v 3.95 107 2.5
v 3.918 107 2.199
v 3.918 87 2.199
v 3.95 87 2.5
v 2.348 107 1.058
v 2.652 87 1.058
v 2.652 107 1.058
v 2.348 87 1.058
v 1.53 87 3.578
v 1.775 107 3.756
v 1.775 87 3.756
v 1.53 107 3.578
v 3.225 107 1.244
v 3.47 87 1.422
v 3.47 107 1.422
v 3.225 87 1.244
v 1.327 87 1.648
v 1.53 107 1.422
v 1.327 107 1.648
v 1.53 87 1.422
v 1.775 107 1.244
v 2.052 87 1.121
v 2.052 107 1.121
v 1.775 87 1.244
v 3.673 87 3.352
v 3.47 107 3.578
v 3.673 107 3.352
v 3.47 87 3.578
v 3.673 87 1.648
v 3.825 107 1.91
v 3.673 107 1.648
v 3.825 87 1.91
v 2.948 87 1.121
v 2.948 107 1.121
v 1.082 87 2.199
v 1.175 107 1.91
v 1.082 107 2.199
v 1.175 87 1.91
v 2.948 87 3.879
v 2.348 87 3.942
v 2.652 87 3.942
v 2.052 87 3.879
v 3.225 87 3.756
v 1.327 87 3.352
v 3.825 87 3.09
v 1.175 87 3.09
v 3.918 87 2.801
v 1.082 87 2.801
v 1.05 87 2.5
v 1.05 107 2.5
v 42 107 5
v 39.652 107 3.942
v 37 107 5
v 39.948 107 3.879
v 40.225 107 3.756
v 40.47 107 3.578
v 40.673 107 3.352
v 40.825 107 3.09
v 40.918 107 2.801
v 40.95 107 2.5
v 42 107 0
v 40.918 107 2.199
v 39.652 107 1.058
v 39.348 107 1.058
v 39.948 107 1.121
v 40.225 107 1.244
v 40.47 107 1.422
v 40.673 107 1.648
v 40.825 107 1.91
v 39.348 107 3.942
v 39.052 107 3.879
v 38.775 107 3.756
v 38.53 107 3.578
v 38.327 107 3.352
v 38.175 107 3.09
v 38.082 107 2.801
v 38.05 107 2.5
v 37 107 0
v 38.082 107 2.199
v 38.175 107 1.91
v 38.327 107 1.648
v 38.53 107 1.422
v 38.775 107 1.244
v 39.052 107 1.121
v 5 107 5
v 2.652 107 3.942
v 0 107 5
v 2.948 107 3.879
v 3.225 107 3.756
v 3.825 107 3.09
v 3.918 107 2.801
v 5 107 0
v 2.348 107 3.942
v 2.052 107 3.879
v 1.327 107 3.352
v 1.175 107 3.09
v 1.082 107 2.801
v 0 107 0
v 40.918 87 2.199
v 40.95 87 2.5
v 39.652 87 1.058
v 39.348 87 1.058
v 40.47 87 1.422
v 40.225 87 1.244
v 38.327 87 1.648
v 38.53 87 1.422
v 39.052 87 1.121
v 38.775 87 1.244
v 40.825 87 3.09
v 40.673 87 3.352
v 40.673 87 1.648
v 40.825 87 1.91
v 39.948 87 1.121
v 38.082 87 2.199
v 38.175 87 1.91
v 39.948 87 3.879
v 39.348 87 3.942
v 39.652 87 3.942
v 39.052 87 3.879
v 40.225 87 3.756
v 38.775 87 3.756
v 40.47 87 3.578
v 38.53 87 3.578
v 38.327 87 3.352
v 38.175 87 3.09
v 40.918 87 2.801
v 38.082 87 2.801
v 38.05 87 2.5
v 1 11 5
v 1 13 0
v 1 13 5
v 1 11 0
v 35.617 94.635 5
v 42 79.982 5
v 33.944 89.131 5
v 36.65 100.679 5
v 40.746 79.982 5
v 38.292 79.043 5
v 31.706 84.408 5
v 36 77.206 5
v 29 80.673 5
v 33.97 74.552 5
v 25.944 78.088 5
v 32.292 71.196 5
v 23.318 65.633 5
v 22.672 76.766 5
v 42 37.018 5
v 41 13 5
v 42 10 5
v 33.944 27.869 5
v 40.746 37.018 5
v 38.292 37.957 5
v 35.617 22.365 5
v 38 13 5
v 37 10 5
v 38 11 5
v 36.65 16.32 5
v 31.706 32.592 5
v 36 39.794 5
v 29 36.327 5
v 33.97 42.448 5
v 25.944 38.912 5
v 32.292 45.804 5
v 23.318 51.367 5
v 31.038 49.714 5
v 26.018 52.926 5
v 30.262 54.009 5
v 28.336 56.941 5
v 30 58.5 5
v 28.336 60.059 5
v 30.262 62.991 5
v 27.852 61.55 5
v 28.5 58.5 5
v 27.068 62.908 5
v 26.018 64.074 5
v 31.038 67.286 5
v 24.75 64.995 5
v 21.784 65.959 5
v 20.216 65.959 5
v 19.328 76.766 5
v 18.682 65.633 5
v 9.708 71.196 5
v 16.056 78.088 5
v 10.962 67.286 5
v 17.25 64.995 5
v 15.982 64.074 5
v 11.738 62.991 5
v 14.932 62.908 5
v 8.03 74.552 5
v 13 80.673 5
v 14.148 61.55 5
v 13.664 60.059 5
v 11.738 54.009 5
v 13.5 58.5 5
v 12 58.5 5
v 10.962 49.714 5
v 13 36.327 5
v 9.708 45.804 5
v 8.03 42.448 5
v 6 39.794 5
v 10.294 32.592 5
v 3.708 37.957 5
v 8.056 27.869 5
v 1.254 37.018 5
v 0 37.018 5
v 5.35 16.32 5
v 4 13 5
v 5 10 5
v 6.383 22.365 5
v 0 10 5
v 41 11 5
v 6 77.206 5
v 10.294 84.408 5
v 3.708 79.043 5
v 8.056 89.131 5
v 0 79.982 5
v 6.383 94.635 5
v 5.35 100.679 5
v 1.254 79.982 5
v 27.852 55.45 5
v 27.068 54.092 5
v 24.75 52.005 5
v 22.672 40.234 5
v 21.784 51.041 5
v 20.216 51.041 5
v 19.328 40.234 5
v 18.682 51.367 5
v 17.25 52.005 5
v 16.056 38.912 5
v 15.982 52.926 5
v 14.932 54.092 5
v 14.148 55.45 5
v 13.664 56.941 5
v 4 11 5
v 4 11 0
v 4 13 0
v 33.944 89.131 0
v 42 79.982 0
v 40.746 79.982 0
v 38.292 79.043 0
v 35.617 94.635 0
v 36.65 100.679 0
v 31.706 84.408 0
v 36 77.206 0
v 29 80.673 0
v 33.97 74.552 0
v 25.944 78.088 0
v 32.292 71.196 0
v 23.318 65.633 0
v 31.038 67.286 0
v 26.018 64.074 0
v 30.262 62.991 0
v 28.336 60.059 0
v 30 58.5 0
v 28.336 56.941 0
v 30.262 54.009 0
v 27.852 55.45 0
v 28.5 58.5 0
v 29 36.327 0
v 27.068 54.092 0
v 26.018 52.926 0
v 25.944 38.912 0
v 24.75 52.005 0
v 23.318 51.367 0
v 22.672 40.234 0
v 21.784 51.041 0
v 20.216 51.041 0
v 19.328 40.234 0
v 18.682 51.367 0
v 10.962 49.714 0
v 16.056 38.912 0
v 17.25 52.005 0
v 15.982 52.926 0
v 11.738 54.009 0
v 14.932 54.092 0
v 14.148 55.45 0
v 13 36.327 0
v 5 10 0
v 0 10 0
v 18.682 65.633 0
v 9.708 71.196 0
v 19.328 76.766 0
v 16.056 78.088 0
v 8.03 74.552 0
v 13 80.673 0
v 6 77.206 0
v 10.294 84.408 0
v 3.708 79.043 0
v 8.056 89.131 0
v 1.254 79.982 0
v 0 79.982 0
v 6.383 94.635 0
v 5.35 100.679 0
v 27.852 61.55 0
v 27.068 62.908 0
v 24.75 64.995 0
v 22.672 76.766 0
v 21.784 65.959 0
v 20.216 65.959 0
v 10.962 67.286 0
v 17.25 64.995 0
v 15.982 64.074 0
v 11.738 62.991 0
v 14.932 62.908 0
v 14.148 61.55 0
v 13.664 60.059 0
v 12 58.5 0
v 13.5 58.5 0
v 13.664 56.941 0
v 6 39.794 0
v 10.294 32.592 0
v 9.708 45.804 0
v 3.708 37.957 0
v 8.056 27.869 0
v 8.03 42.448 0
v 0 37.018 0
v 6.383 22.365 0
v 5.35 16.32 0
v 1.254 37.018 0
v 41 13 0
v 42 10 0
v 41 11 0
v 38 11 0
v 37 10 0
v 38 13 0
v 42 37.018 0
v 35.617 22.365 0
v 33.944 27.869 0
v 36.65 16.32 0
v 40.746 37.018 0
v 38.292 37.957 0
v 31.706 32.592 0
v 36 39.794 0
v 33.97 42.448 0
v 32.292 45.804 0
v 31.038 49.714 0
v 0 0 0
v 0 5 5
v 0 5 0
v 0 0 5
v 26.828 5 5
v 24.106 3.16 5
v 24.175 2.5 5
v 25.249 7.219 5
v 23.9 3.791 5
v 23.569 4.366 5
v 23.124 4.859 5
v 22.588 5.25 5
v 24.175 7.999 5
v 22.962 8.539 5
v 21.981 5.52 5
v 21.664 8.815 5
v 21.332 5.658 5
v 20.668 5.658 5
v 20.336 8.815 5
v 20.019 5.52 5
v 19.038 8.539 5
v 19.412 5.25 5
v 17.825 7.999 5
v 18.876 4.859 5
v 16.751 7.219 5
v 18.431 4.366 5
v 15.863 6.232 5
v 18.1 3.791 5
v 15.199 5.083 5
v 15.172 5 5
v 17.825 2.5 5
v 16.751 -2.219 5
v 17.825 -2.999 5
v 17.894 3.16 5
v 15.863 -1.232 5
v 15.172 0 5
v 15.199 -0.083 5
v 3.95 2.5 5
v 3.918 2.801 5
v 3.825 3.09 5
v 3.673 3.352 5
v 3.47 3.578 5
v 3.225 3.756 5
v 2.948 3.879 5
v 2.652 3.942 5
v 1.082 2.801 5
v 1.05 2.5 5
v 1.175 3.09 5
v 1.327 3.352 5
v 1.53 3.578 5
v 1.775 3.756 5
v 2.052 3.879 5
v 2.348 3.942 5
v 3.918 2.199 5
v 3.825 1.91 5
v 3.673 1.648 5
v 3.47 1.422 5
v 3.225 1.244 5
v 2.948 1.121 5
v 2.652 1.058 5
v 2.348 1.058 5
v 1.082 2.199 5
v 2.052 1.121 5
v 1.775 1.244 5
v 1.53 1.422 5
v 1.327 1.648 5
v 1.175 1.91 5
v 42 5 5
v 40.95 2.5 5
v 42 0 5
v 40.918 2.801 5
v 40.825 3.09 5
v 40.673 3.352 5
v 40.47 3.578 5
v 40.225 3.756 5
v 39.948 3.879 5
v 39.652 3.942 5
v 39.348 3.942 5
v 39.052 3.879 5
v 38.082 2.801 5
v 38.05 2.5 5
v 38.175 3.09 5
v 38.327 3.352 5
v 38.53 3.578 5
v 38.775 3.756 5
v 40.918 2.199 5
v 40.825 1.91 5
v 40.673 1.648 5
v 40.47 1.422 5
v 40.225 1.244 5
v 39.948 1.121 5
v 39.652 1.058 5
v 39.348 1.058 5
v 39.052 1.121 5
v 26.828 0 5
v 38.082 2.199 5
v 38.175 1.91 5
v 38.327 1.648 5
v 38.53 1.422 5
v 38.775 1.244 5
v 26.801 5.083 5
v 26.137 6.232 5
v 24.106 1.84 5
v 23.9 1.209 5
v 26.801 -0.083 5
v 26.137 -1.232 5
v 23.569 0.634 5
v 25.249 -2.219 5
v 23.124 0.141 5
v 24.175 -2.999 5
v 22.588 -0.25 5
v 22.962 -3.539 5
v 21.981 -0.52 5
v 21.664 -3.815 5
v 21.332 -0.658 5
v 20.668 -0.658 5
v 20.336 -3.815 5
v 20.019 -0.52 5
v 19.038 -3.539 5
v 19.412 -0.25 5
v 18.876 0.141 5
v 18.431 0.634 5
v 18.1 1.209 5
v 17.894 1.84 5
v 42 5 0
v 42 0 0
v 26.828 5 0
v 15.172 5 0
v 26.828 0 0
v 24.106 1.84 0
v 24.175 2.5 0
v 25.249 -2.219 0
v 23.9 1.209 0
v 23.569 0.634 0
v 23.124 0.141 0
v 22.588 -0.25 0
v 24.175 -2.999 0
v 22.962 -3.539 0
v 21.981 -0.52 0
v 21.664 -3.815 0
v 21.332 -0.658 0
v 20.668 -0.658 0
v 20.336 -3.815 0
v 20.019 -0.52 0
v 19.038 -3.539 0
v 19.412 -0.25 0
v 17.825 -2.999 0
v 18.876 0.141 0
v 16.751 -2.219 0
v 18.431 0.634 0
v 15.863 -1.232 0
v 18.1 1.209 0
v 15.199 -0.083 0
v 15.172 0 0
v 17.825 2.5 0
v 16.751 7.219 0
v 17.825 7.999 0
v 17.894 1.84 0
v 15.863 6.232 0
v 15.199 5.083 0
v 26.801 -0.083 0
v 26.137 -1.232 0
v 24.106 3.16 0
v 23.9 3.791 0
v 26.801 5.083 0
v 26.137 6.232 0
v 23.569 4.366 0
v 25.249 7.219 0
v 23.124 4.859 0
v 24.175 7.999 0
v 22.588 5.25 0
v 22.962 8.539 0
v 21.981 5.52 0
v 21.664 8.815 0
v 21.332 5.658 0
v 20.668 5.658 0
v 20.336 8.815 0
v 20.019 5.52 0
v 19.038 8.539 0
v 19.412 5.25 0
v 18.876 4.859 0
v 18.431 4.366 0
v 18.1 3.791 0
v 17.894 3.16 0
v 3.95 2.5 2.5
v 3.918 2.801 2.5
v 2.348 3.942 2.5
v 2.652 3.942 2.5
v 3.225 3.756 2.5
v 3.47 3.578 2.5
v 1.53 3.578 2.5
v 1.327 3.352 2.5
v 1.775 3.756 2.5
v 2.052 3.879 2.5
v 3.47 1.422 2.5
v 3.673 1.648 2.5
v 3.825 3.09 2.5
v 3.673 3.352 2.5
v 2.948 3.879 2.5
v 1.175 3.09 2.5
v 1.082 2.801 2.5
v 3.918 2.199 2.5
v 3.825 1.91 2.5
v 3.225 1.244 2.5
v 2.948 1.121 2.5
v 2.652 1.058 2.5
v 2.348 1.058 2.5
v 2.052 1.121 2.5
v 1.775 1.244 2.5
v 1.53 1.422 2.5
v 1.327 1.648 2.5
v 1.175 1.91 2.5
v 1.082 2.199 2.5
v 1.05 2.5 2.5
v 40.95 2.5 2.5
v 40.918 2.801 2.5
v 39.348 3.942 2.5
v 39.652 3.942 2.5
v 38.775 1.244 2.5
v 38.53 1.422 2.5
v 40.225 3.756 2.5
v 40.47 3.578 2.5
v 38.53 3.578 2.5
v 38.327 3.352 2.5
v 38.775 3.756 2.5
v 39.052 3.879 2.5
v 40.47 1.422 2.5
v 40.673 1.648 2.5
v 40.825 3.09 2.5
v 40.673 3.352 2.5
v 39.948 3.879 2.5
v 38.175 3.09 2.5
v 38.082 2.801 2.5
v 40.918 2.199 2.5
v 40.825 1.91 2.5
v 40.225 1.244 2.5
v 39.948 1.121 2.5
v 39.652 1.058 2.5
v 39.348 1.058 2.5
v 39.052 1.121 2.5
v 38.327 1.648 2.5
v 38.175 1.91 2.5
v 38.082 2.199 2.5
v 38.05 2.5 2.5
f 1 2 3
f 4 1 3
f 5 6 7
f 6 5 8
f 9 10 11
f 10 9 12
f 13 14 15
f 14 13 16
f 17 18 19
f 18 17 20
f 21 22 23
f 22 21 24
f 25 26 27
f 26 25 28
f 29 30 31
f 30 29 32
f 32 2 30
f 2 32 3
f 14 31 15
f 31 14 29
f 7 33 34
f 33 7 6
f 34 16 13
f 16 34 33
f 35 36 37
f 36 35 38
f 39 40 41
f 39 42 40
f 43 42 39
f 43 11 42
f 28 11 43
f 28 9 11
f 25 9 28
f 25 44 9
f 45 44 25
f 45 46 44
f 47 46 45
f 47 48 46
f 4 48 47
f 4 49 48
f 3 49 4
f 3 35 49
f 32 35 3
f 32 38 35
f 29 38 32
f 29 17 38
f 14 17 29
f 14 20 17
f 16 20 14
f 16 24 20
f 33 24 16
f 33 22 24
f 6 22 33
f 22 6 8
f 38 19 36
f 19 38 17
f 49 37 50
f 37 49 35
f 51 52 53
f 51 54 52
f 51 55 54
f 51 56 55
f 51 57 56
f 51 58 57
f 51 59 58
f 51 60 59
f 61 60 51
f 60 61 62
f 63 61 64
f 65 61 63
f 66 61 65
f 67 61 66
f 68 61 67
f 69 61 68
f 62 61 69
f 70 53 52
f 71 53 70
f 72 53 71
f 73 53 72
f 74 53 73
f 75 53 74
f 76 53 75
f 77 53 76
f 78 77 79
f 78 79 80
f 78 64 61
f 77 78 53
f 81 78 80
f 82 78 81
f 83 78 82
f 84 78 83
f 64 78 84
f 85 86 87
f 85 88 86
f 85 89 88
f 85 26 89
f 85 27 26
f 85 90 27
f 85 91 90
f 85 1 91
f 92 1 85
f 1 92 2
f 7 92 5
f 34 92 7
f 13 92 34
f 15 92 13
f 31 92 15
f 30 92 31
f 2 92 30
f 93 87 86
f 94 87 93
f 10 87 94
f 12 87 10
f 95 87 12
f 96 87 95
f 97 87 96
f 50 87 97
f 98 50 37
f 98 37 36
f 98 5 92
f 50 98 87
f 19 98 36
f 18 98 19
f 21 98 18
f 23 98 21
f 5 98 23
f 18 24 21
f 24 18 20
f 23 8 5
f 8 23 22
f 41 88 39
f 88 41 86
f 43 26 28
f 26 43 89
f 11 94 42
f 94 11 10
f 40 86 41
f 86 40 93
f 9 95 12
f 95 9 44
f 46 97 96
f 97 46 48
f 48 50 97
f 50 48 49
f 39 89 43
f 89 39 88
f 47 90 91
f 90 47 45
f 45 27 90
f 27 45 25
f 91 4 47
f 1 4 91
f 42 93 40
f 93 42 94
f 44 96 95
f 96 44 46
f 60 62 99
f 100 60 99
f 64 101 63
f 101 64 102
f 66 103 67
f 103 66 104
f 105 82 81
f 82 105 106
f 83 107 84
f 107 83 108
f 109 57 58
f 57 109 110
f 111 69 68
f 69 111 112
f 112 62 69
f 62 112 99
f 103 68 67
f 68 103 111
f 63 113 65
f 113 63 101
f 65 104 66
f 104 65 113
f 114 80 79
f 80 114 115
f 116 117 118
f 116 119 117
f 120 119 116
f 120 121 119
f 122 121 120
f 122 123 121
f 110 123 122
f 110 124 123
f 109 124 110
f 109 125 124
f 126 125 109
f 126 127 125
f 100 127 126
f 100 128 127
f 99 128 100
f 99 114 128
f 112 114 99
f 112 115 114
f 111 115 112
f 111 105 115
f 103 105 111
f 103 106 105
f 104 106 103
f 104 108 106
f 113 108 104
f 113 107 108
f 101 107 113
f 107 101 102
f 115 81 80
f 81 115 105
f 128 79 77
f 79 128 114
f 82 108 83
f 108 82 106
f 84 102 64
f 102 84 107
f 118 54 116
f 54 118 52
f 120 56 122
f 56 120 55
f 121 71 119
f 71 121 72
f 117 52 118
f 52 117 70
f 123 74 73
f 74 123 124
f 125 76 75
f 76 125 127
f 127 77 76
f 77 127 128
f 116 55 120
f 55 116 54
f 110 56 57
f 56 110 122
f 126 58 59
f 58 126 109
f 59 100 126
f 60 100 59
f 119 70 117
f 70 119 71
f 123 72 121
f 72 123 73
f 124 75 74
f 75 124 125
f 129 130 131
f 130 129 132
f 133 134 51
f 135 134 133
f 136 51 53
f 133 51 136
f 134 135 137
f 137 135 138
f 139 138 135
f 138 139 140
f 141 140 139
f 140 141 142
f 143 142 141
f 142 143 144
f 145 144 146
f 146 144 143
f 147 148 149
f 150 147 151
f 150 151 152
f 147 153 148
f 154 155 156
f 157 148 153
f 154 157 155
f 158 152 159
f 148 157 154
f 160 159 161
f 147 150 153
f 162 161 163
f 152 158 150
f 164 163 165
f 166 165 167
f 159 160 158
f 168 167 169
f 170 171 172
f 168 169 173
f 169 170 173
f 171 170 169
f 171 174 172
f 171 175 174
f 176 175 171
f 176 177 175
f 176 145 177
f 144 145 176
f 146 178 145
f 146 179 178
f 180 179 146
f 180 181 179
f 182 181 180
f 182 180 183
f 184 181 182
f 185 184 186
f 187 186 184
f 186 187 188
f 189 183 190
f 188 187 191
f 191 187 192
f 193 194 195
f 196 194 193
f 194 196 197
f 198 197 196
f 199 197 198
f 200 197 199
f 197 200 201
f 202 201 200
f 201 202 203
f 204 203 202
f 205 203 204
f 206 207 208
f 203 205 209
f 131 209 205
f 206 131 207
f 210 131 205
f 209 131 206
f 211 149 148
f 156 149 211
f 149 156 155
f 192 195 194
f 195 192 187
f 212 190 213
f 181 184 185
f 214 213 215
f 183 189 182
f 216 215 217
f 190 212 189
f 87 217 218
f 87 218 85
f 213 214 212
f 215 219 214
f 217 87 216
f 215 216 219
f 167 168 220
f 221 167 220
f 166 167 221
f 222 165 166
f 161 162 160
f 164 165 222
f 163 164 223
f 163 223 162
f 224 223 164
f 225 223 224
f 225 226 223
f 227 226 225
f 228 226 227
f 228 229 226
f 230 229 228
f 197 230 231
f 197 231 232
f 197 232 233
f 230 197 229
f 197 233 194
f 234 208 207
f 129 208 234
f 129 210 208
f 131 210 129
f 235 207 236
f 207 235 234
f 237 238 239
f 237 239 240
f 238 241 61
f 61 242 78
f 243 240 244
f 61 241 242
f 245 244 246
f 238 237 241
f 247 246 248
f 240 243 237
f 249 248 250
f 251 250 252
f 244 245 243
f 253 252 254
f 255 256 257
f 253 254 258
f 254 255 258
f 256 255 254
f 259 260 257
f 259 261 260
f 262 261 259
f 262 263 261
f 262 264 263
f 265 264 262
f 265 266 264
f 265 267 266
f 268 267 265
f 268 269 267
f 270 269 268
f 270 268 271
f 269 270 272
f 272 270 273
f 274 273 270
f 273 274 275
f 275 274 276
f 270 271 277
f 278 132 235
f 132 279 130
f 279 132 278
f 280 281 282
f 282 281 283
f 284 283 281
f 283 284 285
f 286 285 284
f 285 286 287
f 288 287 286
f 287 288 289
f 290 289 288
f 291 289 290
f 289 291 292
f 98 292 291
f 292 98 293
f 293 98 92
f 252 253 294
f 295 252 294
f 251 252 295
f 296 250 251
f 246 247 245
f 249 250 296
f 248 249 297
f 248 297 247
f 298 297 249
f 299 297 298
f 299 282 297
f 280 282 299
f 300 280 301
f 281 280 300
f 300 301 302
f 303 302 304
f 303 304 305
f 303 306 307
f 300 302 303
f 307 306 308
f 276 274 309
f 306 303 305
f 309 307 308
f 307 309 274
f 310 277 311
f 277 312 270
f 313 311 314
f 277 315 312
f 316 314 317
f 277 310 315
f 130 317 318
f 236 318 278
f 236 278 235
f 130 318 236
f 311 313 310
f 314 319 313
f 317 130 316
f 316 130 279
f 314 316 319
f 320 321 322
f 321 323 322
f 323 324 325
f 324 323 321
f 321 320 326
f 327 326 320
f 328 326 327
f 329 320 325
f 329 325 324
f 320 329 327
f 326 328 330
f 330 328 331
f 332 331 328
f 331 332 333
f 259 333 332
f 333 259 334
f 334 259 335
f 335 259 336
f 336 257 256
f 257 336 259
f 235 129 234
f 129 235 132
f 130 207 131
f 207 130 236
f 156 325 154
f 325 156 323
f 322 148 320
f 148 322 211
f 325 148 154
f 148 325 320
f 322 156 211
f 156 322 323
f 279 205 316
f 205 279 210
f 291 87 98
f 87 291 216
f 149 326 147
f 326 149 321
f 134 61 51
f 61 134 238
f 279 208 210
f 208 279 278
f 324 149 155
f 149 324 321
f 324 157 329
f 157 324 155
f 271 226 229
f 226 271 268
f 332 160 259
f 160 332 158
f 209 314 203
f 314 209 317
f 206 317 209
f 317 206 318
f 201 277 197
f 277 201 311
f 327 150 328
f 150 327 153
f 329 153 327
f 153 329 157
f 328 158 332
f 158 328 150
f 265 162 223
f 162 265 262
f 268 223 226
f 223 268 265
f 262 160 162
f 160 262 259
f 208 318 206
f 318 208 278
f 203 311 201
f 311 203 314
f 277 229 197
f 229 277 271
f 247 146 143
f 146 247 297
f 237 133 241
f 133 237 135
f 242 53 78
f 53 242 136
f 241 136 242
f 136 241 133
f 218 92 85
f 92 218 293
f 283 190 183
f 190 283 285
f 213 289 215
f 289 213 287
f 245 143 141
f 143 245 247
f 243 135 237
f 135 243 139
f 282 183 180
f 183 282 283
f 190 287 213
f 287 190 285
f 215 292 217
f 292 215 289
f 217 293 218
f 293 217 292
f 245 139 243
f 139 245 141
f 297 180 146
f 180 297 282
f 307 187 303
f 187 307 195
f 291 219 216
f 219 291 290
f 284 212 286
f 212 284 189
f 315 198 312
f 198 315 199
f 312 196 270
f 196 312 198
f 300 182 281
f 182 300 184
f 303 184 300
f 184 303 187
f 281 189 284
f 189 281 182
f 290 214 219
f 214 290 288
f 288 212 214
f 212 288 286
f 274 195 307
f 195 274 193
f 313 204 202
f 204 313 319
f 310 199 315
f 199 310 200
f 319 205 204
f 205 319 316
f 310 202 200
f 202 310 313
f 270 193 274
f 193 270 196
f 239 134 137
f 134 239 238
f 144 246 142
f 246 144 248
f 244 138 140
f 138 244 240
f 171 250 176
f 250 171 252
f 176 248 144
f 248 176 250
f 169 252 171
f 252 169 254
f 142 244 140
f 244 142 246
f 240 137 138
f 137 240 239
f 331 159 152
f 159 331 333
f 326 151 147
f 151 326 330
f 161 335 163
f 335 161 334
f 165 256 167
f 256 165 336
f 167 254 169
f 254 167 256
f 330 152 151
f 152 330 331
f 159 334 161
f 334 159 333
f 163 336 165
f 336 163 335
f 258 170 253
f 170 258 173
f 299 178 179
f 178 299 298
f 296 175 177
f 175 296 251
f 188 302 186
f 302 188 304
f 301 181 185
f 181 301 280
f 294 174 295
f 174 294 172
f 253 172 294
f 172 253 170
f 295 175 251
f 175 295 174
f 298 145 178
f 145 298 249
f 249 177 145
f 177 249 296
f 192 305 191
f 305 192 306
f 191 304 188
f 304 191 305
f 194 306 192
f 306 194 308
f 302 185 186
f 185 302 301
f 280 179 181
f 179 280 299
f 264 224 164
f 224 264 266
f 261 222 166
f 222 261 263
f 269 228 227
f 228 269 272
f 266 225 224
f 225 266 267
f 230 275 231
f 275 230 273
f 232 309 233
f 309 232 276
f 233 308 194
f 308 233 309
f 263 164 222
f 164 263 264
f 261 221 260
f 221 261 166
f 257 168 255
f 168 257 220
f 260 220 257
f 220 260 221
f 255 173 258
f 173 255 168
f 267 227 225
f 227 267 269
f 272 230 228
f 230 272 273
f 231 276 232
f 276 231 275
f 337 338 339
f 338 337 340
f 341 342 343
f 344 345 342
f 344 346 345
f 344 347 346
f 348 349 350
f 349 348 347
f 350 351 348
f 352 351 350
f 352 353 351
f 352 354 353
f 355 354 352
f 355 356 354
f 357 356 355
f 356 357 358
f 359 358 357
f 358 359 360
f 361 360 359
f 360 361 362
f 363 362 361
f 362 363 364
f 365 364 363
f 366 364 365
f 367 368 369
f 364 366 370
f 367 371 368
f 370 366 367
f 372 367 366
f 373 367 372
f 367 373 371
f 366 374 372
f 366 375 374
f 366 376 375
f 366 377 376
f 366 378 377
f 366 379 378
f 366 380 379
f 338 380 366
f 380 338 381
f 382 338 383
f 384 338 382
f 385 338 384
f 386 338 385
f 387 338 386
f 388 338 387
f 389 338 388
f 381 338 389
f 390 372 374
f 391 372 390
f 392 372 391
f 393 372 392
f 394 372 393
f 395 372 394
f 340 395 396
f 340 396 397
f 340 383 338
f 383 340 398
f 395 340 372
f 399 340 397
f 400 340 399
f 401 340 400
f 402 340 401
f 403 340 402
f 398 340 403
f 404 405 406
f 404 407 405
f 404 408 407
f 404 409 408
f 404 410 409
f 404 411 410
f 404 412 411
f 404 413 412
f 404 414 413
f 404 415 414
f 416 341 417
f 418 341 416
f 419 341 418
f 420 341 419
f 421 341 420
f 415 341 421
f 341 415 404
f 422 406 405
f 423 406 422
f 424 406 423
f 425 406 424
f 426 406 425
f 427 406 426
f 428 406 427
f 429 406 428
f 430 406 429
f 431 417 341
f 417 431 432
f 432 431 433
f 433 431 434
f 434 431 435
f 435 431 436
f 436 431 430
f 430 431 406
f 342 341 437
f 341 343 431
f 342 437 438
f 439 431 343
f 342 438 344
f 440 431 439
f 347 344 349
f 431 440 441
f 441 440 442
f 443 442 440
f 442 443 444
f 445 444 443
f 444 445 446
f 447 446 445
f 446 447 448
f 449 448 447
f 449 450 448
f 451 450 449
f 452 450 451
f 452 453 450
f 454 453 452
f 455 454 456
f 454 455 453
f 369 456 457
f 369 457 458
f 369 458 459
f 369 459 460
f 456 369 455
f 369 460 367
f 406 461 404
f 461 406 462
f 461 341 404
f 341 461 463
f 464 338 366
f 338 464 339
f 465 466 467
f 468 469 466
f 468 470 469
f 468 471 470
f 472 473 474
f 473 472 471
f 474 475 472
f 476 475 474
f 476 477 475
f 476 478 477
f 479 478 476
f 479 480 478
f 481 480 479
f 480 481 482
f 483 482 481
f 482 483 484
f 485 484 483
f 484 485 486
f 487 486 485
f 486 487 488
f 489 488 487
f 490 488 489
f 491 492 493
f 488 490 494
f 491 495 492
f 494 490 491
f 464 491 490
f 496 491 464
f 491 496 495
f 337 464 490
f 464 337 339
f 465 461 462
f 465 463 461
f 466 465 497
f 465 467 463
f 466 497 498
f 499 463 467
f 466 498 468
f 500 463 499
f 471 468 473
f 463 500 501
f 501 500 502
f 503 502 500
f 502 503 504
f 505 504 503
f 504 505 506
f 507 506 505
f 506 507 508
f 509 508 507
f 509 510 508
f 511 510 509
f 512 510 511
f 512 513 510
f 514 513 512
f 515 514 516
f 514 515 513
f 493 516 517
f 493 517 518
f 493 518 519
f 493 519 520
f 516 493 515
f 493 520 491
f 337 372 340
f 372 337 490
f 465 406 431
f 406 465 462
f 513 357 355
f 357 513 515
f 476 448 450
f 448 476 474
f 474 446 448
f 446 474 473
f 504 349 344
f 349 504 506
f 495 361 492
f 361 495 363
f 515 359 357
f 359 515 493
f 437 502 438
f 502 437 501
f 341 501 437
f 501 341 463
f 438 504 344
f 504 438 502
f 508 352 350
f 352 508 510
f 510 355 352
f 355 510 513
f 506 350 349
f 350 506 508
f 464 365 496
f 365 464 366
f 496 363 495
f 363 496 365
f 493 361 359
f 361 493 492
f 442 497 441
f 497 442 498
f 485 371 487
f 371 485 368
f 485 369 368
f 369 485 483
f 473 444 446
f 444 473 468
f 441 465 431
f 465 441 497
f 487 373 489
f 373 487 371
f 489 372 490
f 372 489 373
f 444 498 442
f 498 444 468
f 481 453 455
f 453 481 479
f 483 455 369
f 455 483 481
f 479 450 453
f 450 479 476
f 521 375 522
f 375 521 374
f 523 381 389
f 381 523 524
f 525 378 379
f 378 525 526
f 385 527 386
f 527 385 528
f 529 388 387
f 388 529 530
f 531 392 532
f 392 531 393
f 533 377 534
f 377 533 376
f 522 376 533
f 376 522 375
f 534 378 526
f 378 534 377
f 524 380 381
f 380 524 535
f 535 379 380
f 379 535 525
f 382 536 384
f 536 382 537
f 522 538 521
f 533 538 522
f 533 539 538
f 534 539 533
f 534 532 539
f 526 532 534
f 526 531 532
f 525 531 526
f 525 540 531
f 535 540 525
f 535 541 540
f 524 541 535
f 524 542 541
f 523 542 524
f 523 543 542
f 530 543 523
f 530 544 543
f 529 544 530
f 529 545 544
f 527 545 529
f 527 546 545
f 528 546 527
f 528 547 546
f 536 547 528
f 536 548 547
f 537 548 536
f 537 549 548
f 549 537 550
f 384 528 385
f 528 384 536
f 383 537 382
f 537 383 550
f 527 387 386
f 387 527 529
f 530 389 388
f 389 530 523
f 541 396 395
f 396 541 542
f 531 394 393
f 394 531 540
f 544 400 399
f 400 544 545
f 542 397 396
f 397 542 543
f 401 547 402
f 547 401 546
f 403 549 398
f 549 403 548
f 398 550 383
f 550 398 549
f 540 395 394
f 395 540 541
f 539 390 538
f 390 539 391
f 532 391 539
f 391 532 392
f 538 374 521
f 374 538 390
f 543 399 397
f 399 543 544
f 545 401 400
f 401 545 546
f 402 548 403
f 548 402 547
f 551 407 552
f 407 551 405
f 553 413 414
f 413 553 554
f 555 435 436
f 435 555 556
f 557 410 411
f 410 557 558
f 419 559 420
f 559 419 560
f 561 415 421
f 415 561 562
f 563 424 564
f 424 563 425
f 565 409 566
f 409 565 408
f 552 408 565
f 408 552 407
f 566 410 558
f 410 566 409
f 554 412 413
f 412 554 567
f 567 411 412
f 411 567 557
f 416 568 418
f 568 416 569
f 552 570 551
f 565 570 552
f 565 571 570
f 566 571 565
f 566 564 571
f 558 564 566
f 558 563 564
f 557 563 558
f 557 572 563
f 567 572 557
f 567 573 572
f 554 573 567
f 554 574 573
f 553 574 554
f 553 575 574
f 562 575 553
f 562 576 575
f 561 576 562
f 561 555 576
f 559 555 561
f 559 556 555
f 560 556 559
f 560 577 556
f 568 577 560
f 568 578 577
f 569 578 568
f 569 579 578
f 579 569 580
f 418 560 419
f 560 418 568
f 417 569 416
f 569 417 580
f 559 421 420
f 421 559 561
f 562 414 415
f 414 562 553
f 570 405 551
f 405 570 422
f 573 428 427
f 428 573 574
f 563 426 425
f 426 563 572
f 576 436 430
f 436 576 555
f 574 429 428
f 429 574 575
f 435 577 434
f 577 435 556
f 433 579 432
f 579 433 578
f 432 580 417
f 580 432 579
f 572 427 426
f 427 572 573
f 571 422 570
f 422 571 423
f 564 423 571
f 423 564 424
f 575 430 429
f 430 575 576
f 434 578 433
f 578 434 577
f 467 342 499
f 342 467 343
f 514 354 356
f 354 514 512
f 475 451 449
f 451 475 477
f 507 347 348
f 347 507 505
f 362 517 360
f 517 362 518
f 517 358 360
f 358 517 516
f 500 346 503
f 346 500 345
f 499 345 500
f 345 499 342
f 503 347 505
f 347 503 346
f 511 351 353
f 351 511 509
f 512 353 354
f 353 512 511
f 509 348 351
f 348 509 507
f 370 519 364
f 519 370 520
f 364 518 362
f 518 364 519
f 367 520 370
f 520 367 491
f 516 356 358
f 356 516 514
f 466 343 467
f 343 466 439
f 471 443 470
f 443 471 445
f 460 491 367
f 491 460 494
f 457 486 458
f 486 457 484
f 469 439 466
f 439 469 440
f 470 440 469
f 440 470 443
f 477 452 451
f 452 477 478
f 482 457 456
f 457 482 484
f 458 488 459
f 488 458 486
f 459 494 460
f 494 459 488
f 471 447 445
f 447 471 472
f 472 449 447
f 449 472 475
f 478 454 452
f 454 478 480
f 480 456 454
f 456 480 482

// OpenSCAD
// camera tripod mount for Taranis Q X10

$fn=30;

ZZ=5;            // thickness
WW=42;           // main body width
HH=97;           // main body height

PADW=10;         // screw pad width
ANTENNA_DIA=15;  // antenna hole

BOLT_DIA=3;      // bolt dimensions
BOLT_LEN=20;

// hole for one bolt
module bolthole() {
    #cylinder(h=BOLT_LEN,d=BOLT_DIA-.1);
}

// drill all the bolt and zip tie holes
module drillholes() {
    // hmm, screwholes seem less good than zip ties.
    //translate([2.5,0,2.5]) rotate([270,0,0]) bolthole();
    //translate([37+2.5,0,2.5]) rotate([270,0,0]) bolthole();

    // two holes for zip ties
    translate([1,1,0]) cube([3,2,ZZ]);
    translate([37+1,1,0]) cube([3,2,ZZ]);

    // top screwholes
    translate([0,HH-BOLT_LEN,0]) {
        translate([2.5,0,2.5]) rotate([270,0,0]) bolthole();
        translate([37+2.5,0,2.5]) rotate([270,0,0]) bolthole();
    }
}

// top bar
module top() {
    difference() {
        union() {
            cube([WW,ZZ,ZZ]);
        translate([WW/2,PADW/4,0]) cylinder(ZZ,d=25.4/2);            
        }
        translate([2.5,2.5,2.5])  bolthole();
        translate([37+2.5,2.5,2.5]) bolthole();
        translate([WW/2,PADW/4,0]) cylinder(ZZ,d=25.4/4);            

    }
}

// main body
module main() {
    difference() {
        cube([WW,HH,ZZ]);
        // top and bottom
        translate([WW/2,0,0])  scale([1,1.9,1]) cylinder(ZZ,d=WW-(PADW));
        translate([WW/2,HH,0]) scale([1,1.9,1]) cylinder(ZZ,d=WW-(PADW));
        // sides
        translate([0,HH/2,0]) scale([1,1.8,1]) cylinder(ZZ,r=WW-(2*ANTENNA_DIA));
        translate([WW,HH/2,0]) scale([1,1.8,1]) cylinder(ZZ,r=WW-(2*ANTENNA_DIA));
        
        translate([WW/2,HH/2,0]) cylinder(ZZ,d=ANTENNA_DIA);
        drillholes();
    }
}

module all() {
    translate([0,10,0]) main();
    top();
}

all();
